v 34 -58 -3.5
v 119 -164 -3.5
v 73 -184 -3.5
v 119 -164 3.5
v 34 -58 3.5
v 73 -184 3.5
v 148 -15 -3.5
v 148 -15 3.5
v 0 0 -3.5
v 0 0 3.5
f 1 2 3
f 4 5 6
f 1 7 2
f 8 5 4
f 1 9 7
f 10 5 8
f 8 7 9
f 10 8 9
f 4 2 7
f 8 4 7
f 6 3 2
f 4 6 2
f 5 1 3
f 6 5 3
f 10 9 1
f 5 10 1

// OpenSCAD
polyhedron(points=[[73.0, -184.0, -3.5], [34.0, -58.0, -3.5], [119.0, -164.0, -3.5], [73.0, -184.0, 3.5], [34.0, -58.0, 3.5], [119.0, -164.0, 3.5], [148.0, -15.0, -3.5], [148.0, -15.0, 3.5], [0.0, 0.0, -3.5], [0.0, 0.0, 3.5]], faces=[[1, 2, 0], [5, 4, 3], [1, 6, 2], [7, 4, 5], [1, 8, 6], [9, 4, 7], [7, 6, 8], [9, 7, 8], [5, 2, 6], [7, 5, 6], [3, 0, 2], [5, 3, 2], [4, 1, 0], [3, 4, 0], [9, 8, 1], [4, 9, 1]], convexity=20);
